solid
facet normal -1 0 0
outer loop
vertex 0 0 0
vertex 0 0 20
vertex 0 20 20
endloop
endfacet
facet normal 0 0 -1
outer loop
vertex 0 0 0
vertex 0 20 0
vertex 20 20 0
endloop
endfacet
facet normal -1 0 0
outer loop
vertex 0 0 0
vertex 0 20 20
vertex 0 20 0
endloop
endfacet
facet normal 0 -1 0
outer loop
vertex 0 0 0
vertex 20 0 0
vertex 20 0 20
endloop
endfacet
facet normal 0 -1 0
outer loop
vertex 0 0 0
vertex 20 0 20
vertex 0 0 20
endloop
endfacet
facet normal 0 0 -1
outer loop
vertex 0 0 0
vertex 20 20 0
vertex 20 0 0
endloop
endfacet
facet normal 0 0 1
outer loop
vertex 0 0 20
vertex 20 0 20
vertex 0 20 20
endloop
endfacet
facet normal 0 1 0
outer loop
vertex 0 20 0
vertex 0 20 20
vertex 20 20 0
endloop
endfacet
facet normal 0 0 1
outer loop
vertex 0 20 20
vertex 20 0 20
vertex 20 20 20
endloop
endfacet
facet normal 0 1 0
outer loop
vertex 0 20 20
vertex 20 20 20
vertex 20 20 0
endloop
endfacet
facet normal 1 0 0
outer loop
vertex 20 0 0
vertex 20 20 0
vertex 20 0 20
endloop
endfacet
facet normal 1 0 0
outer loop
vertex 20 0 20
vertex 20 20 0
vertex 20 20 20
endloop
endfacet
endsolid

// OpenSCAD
// 20mm cube, single solid, manifold — expected volume 8000 mm^3
cube([20, 20, 20], center=false);
